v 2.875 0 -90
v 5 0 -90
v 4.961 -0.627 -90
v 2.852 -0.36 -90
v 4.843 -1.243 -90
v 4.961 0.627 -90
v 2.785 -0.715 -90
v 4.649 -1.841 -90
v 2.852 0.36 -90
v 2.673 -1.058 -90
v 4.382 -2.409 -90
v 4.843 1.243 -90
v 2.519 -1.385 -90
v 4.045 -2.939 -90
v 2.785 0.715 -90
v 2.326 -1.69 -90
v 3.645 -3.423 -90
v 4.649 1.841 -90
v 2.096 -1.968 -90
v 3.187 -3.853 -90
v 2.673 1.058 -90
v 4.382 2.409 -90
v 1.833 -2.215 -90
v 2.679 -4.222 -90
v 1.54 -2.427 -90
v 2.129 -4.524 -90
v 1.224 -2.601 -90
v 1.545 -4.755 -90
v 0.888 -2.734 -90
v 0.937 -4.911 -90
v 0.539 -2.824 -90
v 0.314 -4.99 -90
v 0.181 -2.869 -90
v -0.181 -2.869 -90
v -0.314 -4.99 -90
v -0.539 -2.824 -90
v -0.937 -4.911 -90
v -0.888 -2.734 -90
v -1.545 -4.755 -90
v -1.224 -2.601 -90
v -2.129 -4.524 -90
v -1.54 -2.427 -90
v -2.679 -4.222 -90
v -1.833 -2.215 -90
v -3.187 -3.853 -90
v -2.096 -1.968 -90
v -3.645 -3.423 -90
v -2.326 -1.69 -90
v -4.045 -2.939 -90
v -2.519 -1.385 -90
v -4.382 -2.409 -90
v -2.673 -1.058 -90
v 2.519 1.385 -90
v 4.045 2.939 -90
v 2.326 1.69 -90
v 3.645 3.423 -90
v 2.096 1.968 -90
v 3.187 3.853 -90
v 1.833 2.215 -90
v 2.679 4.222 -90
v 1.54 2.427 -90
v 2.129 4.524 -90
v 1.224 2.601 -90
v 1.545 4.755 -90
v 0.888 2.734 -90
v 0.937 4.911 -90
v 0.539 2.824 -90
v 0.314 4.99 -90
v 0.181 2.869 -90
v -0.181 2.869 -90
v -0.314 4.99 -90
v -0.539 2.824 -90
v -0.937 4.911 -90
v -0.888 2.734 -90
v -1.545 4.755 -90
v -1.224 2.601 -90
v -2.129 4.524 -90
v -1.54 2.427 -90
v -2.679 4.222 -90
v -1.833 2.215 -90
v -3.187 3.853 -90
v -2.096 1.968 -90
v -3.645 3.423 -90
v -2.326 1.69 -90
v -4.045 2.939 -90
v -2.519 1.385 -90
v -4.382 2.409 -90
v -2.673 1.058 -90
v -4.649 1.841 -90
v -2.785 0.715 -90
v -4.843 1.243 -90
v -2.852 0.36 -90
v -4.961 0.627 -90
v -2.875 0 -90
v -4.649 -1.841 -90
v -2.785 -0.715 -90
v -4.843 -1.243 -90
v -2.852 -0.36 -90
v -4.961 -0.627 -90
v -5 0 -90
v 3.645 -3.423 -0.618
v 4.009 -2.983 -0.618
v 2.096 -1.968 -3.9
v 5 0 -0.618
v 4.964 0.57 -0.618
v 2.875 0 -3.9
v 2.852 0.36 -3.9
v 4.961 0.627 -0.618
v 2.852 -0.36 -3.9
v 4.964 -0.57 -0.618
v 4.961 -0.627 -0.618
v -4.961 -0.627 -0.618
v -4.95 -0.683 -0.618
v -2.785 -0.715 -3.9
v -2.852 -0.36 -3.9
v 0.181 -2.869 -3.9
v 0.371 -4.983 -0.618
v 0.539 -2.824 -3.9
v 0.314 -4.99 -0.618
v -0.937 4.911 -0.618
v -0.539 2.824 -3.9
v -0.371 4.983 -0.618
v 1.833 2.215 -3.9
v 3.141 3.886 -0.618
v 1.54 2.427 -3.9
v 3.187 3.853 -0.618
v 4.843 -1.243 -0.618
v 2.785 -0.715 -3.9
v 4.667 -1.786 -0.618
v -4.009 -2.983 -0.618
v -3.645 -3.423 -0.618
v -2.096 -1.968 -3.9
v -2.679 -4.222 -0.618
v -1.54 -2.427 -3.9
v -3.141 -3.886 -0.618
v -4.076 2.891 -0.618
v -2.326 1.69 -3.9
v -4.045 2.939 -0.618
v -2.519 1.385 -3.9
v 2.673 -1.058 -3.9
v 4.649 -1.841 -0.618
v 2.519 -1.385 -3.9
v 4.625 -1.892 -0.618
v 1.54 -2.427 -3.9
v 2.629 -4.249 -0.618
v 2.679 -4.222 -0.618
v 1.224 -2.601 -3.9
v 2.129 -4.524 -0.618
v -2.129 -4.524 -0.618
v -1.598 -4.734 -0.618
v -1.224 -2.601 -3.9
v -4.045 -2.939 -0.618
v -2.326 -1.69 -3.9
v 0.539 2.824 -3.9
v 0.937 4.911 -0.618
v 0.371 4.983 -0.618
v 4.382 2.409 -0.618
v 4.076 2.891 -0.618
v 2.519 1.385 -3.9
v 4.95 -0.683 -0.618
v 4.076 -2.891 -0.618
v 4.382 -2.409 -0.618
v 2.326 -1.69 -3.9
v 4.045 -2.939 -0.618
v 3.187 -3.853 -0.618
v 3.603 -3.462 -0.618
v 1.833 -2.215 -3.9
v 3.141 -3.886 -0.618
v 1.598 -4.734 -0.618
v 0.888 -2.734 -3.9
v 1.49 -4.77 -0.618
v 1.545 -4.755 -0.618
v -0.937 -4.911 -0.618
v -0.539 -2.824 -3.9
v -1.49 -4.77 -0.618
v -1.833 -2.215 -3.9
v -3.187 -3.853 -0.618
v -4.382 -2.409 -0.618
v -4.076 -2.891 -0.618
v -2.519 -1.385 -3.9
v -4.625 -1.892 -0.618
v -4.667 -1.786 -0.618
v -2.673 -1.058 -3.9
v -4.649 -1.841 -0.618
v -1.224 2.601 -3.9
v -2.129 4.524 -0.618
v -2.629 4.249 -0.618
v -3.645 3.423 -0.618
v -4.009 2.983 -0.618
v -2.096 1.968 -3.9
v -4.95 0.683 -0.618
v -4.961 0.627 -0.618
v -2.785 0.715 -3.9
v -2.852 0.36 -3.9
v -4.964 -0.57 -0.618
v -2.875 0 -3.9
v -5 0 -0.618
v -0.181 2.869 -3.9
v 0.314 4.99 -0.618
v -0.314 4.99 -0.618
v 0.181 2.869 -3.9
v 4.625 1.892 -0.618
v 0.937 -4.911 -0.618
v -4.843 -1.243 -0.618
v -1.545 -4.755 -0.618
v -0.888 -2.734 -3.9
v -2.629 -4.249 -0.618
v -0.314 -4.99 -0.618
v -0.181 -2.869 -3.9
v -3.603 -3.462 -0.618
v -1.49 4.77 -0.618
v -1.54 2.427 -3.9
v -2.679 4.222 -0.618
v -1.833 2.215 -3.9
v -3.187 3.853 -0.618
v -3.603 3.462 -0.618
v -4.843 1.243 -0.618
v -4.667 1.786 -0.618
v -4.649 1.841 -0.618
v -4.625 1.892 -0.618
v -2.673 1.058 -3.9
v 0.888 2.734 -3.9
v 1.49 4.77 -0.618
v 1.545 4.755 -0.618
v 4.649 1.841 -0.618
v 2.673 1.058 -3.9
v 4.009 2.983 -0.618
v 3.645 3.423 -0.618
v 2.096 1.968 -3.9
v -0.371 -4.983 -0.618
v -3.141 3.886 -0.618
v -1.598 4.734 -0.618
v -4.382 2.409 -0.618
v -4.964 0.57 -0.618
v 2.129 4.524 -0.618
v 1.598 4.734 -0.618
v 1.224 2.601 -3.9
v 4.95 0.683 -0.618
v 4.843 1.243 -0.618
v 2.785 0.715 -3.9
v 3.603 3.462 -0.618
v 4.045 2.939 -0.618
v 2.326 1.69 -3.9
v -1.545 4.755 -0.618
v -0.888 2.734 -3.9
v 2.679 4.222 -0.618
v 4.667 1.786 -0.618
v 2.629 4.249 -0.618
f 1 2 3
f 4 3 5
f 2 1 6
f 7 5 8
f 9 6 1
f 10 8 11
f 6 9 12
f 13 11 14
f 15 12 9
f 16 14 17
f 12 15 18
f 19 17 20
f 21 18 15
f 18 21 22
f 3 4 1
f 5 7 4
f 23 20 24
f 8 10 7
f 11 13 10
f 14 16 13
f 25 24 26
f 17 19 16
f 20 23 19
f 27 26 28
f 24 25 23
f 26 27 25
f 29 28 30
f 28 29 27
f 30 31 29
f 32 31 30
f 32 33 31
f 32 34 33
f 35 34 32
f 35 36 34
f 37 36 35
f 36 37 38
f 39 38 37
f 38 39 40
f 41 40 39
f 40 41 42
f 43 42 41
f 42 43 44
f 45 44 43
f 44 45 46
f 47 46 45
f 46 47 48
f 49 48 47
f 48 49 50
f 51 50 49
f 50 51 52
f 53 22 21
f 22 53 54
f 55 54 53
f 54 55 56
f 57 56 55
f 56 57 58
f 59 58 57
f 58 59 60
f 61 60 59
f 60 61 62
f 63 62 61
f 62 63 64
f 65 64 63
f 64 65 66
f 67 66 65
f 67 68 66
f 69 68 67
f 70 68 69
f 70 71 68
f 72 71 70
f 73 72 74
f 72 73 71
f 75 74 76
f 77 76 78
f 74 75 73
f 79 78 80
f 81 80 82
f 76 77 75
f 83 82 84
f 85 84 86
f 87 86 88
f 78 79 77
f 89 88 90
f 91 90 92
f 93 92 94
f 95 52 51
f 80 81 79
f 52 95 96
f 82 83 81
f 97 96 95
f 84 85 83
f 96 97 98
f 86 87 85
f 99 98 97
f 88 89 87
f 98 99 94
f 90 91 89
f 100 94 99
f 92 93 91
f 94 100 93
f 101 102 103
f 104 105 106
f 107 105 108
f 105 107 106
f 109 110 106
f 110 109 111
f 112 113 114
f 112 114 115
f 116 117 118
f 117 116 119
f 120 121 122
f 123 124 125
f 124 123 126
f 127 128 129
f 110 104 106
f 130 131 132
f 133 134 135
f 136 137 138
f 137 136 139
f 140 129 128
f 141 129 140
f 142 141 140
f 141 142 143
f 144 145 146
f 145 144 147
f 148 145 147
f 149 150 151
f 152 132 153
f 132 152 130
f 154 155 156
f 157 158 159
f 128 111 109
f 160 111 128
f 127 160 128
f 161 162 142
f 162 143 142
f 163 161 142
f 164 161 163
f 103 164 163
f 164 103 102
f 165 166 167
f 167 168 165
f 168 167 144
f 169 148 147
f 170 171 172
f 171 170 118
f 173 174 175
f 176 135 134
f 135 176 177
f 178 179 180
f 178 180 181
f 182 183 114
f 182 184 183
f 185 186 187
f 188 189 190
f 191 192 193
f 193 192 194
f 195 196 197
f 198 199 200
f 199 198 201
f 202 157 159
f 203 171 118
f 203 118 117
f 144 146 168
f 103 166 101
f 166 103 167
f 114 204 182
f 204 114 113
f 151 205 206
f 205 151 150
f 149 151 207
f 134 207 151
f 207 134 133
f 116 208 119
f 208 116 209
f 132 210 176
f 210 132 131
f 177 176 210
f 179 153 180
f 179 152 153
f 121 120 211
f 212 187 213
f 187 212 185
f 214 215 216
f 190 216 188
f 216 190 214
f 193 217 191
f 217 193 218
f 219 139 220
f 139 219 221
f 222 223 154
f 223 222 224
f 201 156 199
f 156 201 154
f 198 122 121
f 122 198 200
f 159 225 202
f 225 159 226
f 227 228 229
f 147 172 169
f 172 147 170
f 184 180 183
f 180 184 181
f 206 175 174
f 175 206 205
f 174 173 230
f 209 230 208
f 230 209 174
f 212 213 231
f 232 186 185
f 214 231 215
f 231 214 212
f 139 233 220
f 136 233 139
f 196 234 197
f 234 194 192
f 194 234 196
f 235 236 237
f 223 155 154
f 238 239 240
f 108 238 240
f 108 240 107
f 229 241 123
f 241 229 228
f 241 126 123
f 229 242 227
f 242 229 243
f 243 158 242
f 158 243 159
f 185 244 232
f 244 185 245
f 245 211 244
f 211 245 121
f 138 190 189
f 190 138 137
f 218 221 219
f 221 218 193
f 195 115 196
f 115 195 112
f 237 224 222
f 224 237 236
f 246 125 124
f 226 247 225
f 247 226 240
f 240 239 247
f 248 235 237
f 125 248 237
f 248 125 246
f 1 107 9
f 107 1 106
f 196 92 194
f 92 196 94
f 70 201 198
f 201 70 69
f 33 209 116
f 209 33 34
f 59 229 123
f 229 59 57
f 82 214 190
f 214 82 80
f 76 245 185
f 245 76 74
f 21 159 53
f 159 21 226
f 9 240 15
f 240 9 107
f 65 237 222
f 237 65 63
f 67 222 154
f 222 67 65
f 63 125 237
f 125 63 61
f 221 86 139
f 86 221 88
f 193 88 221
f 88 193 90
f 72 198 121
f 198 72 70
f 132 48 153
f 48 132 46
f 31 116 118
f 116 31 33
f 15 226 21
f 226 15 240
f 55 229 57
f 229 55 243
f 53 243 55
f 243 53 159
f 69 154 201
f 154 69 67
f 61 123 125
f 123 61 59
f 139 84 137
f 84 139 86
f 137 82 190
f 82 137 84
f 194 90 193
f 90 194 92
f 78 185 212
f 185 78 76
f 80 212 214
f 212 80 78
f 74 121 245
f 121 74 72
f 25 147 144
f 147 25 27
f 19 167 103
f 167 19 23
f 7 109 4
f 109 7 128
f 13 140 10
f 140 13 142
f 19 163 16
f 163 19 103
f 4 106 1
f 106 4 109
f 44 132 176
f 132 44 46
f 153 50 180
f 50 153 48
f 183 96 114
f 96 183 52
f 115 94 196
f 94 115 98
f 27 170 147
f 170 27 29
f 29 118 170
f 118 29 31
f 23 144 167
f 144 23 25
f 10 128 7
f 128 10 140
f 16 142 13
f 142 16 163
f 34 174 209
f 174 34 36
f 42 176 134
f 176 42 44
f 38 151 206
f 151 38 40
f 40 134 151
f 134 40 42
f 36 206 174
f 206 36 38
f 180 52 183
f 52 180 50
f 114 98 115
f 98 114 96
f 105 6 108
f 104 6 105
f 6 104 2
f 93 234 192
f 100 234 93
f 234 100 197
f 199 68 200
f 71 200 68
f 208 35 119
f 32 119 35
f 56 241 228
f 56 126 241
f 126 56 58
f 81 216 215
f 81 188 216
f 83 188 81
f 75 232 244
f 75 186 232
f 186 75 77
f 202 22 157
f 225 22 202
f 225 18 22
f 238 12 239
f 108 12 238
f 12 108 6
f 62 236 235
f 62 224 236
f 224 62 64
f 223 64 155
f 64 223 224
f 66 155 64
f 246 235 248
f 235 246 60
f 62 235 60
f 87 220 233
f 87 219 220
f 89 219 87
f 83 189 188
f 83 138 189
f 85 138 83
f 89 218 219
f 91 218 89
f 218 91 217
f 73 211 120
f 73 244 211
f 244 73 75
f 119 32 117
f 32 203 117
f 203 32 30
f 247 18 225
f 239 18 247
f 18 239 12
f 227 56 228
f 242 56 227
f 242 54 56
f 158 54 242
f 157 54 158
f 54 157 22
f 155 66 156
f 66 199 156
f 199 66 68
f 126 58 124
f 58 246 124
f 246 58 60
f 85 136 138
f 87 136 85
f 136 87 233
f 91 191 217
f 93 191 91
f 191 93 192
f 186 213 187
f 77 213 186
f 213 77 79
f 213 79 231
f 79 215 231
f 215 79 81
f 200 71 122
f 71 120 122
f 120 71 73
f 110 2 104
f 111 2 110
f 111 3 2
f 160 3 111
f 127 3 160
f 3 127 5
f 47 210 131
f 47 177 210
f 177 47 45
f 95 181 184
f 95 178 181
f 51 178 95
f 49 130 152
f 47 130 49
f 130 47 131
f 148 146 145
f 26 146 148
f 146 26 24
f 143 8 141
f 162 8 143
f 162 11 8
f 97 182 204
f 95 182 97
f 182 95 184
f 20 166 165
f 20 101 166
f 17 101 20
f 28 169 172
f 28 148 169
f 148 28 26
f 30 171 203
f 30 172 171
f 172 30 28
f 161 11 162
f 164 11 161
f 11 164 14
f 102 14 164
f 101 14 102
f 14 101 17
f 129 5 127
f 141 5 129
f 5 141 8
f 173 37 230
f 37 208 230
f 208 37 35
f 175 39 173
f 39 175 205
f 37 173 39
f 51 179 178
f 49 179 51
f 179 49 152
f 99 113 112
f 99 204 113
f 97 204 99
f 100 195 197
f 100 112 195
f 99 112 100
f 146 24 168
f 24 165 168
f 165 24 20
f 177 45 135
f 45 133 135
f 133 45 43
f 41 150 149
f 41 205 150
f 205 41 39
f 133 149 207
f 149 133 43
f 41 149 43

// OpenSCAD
$fn = 50;


difference() {
	union() {
		translate(v = [0, 0, -90.0000000000]) {
			cylinder(h = 90, r = 5.0000000000);
		}
		cylinder(h = 0, r = 8.0000000000);
	}
	union() {
		translate(v = [0, 0, 0]) {
			rotate(a = [0, 0, 0]) {
				difference() {
					union() {
						#translate(v = [0, 0, -90.0000000000]) {
							cylinder(h = 90, r = 2.6000000000);
						}
						#translate(v = [0, 0, -3.9000000000]) {
							cylinder(h = 3.9000000000, r1 = 2.8750000000, r2 = 5.4000000000);
						}
						#translate(v = [0, 0, -90.0000000000]) {
							cylinder(h = 90, r = 2.8750000000);
						}
						#translate(v = [0, 0, -90.0000000000]) {
							cylinder(h = 90, r = 2.6000000000);
						}
					}
					union();
				}
			}
		}
	}
}
